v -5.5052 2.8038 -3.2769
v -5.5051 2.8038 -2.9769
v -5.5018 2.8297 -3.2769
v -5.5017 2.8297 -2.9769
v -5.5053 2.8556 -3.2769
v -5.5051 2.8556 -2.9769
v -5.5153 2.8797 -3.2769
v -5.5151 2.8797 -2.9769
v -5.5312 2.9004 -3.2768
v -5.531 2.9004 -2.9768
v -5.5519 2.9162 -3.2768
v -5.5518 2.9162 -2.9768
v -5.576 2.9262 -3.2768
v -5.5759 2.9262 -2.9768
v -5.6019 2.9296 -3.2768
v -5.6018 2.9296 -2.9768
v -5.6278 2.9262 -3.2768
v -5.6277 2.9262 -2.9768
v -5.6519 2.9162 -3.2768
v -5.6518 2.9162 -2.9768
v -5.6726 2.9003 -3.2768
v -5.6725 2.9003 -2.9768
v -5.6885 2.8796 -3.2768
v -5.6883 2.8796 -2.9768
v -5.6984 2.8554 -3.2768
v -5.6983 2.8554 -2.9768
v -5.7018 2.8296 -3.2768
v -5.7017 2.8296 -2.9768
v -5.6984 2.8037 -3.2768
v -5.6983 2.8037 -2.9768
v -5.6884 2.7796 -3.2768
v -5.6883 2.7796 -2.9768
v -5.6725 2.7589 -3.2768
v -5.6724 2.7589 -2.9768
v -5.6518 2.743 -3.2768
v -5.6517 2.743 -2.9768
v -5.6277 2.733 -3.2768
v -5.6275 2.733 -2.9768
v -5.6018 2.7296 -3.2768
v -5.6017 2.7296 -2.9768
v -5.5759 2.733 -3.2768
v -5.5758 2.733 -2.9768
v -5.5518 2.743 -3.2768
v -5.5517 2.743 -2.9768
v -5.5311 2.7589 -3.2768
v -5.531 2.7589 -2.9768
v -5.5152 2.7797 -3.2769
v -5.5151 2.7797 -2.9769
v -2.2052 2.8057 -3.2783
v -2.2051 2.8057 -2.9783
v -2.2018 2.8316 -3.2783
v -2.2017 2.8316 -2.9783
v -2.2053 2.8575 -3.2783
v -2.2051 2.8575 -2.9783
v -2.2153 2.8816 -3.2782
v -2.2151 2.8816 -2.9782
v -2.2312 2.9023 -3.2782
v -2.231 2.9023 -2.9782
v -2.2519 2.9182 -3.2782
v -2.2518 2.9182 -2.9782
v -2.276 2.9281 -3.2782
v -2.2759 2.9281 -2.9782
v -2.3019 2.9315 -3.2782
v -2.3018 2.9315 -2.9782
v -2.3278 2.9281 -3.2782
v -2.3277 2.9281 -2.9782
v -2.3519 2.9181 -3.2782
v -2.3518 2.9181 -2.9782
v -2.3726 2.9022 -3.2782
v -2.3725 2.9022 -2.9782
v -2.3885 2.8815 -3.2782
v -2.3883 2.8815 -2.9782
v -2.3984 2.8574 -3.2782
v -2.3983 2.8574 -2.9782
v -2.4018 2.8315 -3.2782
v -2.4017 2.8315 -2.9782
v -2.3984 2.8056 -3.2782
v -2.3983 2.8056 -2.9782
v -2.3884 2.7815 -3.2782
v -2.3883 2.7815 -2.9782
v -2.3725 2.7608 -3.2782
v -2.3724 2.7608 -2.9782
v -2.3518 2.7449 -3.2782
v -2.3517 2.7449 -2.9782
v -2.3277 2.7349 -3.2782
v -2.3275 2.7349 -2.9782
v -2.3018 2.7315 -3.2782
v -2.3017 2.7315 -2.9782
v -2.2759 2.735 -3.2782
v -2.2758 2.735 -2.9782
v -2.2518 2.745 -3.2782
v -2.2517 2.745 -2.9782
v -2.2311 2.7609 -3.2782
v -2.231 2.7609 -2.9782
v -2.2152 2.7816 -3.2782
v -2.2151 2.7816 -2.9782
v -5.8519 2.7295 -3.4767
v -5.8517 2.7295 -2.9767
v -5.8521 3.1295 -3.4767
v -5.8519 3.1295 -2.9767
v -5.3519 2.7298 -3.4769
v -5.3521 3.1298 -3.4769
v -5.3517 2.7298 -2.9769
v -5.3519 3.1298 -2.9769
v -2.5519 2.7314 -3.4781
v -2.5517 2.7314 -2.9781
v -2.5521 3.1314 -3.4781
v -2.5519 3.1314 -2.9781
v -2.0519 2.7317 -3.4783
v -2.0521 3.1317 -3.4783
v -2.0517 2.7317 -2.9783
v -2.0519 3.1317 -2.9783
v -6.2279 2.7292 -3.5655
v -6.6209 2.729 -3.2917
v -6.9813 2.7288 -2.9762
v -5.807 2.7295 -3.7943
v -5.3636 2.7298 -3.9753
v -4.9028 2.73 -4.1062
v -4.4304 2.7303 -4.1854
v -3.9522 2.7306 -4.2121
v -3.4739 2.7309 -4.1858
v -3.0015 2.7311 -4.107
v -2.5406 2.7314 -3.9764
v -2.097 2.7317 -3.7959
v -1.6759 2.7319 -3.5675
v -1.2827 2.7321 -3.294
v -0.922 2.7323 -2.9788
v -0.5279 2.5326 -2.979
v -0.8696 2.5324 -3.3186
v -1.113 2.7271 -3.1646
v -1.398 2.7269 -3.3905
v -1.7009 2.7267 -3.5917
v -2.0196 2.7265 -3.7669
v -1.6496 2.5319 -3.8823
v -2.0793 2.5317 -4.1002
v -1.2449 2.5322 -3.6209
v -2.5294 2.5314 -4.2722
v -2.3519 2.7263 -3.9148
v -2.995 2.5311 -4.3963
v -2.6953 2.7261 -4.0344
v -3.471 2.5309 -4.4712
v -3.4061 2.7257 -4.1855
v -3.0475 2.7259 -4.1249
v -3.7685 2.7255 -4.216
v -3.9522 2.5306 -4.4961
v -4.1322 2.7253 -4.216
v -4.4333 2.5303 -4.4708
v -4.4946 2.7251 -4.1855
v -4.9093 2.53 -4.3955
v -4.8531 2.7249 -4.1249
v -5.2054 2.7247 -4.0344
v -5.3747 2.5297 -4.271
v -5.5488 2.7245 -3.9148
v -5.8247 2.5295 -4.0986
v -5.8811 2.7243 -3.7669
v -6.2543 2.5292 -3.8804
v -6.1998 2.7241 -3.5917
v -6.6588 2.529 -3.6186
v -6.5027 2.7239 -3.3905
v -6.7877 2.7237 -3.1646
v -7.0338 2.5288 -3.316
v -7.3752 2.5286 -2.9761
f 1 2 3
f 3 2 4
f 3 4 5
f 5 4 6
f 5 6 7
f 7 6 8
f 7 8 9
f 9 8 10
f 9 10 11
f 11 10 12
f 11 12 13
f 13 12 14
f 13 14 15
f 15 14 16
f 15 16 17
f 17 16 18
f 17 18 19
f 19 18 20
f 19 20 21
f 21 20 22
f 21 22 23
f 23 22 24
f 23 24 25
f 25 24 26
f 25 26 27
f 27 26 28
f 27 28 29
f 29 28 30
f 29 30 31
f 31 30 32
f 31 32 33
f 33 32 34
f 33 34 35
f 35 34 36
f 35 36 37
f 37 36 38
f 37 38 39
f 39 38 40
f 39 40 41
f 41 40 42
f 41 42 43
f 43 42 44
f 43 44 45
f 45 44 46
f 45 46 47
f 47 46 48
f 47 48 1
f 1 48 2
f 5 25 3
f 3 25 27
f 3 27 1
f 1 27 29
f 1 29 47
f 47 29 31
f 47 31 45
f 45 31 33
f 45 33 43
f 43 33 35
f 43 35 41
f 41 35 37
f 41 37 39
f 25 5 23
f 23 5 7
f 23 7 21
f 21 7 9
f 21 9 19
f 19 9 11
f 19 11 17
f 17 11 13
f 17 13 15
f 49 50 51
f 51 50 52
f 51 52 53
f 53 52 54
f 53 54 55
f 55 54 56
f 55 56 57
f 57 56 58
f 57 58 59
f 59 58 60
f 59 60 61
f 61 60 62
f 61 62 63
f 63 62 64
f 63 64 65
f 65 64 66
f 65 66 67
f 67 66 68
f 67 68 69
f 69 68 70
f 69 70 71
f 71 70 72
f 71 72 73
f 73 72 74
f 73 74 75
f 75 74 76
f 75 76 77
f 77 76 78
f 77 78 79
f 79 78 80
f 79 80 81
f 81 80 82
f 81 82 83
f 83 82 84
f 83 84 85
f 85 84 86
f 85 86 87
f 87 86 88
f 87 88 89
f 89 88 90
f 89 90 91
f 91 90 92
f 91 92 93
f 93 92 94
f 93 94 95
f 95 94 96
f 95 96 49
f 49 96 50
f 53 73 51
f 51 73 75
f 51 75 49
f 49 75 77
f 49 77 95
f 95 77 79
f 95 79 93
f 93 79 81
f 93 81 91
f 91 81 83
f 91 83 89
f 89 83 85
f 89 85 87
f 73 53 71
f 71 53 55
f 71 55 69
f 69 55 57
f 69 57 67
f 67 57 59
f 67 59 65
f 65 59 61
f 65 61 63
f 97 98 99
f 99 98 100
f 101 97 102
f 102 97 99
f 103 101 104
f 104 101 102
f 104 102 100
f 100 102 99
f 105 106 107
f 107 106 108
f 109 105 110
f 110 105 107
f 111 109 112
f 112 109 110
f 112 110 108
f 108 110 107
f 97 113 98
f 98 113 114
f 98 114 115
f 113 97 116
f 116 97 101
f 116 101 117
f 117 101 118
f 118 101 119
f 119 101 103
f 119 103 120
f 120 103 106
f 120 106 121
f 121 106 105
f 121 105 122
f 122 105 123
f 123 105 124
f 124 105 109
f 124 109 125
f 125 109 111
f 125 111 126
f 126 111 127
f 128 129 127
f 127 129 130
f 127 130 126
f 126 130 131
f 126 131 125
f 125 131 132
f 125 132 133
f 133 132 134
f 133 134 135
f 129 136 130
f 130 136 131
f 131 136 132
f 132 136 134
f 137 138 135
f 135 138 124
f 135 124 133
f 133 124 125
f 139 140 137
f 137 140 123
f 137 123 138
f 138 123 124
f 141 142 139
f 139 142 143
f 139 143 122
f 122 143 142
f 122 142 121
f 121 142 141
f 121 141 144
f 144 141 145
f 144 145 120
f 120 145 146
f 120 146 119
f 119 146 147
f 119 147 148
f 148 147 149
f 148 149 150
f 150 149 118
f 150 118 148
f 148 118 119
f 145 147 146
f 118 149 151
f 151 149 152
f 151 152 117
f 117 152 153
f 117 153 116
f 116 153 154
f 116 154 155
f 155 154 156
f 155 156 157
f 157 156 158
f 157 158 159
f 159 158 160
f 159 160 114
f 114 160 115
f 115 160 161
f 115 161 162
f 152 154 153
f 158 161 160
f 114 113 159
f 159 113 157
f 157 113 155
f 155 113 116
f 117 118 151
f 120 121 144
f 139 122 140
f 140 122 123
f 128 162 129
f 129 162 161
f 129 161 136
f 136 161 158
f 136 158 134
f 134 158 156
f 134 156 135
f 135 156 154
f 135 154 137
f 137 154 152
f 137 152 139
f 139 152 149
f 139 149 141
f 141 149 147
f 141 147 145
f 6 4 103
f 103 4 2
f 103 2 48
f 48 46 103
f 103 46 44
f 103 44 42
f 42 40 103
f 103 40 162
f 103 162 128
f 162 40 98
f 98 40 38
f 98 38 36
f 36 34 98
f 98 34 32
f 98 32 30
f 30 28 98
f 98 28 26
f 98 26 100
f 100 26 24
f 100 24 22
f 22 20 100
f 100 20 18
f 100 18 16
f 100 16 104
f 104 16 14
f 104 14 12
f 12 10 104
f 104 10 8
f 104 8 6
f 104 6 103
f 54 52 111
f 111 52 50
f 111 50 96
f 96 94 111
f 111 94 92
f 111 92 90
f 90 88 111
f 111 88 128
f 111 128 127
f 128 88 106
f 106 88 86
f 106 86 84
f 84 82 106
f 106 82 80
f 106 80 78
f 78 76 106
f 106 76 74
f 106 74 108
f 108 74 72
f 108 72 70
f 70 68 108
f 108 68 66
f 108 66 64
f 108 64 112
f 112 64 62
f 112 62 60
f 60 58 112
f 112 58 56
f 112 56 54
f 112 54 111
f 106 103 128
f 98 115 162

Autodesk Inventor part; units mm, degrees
ref_plane "YZ Plane" through (0, 0, 0) normal (1, 0, 0) x (0, 1, 0)
ref_plane "XZ Plane" through (0, 0, 0) normal (0, 1, 0) x (-1, 0, 0)
ref_plane "Plano de trabajo1" through (-3.6934, 0.2114, -2.9776) normal (-0.0004218, 0, -0.9999999) x (-0.9999997, -0.0005838, 0.0004218)
sketch "Boceto1" plane through (-3.6934, 0.2114, -2.9776) normal (-0.0004218, 0, -0.9999999) x (-0.9999997, -0.0005838, 0.0004218)
  line L0 (-3.0164, 1.9579) -> (1.1656, 1.9607) projected
  line L1 (0, 2.3193) -> (-2.3, 2.3193) projected
  line L2 (0, 2.3193) -> (-5.2081, 2.3193)
  line L3 (-5.2081, 2.3193) -> (-5.2081, 2.5193)
  line L4 (-5.2081, 2.5193) -> (5.9957, 2.5193)
  line L5 (5.9957, 2.5193) -> (5.9957, 2.3193)
  line L6 (0, 2.3193) -> (5.9957, 2.3193)
  point P0 (-3.692, -0.2136)
  dimension "d1" = 0.2
  dimension "d2" = 0.2
extrude "Extrusión1" add sketch "Boceto1" along normal blind 3
ref_plane "Plano de trabajo2" through (-3.6921, 0.2114, 0.1224) normal (-0.0004218, 0, -0.9999999) x (-0.9999997, -0.0005838, 0.0004218)
sketch "Boceto2" plane through (-3.6921, 0.2114, 0.1224) normal (-0.0004218, 0, -0.9999999) x (-0.9999997, -0.0005838, 0.0004218)
  line L0 (-7.8545, -5.065) -> (-7.6172, -5.0078)
  line L1 (-6.9665, -8.3558) -> (-7.6172, -5.0078)
  line L2 (-7.6172, -5.0078) -> (-6.9665, -8.3558)
  line L3 (-7.2432, -8.3558) -> (-6.9376, -8.3558)
  line L4 (-7.2432, -8.3558) -> (-6.9376, -8.3558)
  line L5 (-6.9665, -8.3558) -> (-7.2432, -8.3558)
  line L6 (-7.8545, -5.065) -> (-7.2432, -8.3558)
  line L7 (-7.8545, -5.065) -> (-7.2432, -8.3558)
  line L8 (-7.2432, -8.3558) -> (7.7568, -8.3558)
  arc A0 (-3.3928, 3.2058) -> (-7.8545, -5.065) centre (0.4426, -4.202) ccw
  arc A1 (0.2568, 4.0292) -> (-3.3486, 2.956) centre (1.1532, -5.5745) ccw
  line L9 (0.2568, 4.2722) -> (0.2568, 4.0292)
  arc A2 (0.2568, 4.2722) -> (-3.3928, 3.2058) centre (1.1532, -5.5745) ccw
  arc A3 (-3.2814, 2.9912) -> (-7.6172, -5.0078) centre (0.4426, -4.202) ccw
  line L10 (0.2568, -8.3558) -> (0.2568, 10.2551)
  line L11 (0.2568, 4.2722) -> (-10.676, 4.2722)
  line L12 (-10.676, 4.2722) -> (-10.676, -8.3558)
  line L13 (-7.2432, -8.3558) -> (-10.676, -8.3558)
  line L14 (0.2568, 4.2722) -> (-10.676, 4.2722)
  line L15 (-10.676, 4.2722) -> (-10.676, -8.3558)
  line L16 (-10.676, -8.3558) -> (-7.2432, -8.3558)
  line L17 (-7.2432, -8.3558) -> (-7.8545, -5.065)
  point P0 (-3.692, -0.2136)
  dimension "d6" = 15
revolve "Revolución1" cut sketch "Boceto2" angle 360 about axis through (-3.944, -8.1445, 0.1225) along (-0.0005838, 0.9999998, 0.0000002) contours A0 A2 L9 A1 A3 L0 | L6 L13 L12 L11 A2 A0
sketch "Boceto3" plane through (-6.9813, 2.7288, -2.9762) normal (-0.0005838, 0.9999998, 0.0000002) x (0.9999997, 0.0005838, -0.0004218)
  arc A0 (6.0592, 0) -> (0, 0) centre (3.0296, -3.1) ccw projected
  line L0 (6.0592, 0) -> (0, 0) projected
  line L1 (6.0592, 0) -> (0, 0) projected
  line L2 (3.0296, 0) -> (1.6296, 0)
  line L3 (1.6296, 0) -> (1.6296, 0.5)
  line L4 (1.6296, 0.5) -> (1.1296, 0.5)
  line L5 (1.1296, 0.5) -> (1.1296, 0)
  line L6 (1.1296, 0) -> (1.6296, 0)
  line L7 (3.0296, 0) -> (4.4296, 0)
  line L8 (4.4296, 0) -> (4.9296, 0)
  line L9 (4.9296, 0) -> (4.9296, 0.5)
  line L10 (4.9296, 0.5) -> (4.4296, 0.5)
  line L11 (4.4296, 0.5) -> (4.4296, 0)
  point P0 (6.9784, -2.9792)
  dimension "d8" = 1.4
  dimension "d9" = 0.5
  dimension "d10" = 0.5
  dimension "d11" = 0.5
  dimension "d12" = 1.4
  dimension "d13" = 0.5
  dimension "d14" = 0.5
  dimension "d15" = 0.5
extrude "Extrusión2" add sketch "Boceto3" along normal blind 0.4 contours L0 L11 L10 L9 | L5 L4 L3 L0
sketch "Boceto4" plane through (-3.6934, 0.2114, -2.9776) normal (0.0004218, 0, 0.9999999) x (0.9999997, 0.0005838, -0.0004218)
  line L0 (2.7728, 2.5193) -> (1.6432, 2.5193) projected
  line L1 (1.6432, 2.5193) -> (1.6432, 2.9193) projected
  line L2 (1.1432, 2.9193) -> (1.6432, 2.9193) projected
  line L3 (1.1432, 2.5193) -> (1.1432, 2.9193) projected
  line L4 (1.1432, 2.5193) -> (-1.6568, 2.5193) projected
  line L5 (-1.6568, 2.5193) -> (-1.6568, 2.9193) projected
  line L6 (-2.1568, 2.9193) -> (-1.6568, 2.9193) projected
  line L7 (-2.1568, 2.5193) -> (-2.1568, 2.9193) projected
  line L8 (-2.1568, 2.5193) -> (-3.2864, 2.5193) projected
  line L9 (-3.6805, 2.3193) -> (3.1669, 2.3193) projected
  circle A0 centre (-1.9068, 2.6193) radius 0.1
  circle A1 centre (1.3932, 2.6193) radius 0.1
  point P0 (3.692, -0.2136)
  dimension "d18" = 0.2
  dimension "d19" = 0.2
extrude "Extrusión3" cut sketch "Boceto4" against normal blind 0.3
properties part number "vs"
